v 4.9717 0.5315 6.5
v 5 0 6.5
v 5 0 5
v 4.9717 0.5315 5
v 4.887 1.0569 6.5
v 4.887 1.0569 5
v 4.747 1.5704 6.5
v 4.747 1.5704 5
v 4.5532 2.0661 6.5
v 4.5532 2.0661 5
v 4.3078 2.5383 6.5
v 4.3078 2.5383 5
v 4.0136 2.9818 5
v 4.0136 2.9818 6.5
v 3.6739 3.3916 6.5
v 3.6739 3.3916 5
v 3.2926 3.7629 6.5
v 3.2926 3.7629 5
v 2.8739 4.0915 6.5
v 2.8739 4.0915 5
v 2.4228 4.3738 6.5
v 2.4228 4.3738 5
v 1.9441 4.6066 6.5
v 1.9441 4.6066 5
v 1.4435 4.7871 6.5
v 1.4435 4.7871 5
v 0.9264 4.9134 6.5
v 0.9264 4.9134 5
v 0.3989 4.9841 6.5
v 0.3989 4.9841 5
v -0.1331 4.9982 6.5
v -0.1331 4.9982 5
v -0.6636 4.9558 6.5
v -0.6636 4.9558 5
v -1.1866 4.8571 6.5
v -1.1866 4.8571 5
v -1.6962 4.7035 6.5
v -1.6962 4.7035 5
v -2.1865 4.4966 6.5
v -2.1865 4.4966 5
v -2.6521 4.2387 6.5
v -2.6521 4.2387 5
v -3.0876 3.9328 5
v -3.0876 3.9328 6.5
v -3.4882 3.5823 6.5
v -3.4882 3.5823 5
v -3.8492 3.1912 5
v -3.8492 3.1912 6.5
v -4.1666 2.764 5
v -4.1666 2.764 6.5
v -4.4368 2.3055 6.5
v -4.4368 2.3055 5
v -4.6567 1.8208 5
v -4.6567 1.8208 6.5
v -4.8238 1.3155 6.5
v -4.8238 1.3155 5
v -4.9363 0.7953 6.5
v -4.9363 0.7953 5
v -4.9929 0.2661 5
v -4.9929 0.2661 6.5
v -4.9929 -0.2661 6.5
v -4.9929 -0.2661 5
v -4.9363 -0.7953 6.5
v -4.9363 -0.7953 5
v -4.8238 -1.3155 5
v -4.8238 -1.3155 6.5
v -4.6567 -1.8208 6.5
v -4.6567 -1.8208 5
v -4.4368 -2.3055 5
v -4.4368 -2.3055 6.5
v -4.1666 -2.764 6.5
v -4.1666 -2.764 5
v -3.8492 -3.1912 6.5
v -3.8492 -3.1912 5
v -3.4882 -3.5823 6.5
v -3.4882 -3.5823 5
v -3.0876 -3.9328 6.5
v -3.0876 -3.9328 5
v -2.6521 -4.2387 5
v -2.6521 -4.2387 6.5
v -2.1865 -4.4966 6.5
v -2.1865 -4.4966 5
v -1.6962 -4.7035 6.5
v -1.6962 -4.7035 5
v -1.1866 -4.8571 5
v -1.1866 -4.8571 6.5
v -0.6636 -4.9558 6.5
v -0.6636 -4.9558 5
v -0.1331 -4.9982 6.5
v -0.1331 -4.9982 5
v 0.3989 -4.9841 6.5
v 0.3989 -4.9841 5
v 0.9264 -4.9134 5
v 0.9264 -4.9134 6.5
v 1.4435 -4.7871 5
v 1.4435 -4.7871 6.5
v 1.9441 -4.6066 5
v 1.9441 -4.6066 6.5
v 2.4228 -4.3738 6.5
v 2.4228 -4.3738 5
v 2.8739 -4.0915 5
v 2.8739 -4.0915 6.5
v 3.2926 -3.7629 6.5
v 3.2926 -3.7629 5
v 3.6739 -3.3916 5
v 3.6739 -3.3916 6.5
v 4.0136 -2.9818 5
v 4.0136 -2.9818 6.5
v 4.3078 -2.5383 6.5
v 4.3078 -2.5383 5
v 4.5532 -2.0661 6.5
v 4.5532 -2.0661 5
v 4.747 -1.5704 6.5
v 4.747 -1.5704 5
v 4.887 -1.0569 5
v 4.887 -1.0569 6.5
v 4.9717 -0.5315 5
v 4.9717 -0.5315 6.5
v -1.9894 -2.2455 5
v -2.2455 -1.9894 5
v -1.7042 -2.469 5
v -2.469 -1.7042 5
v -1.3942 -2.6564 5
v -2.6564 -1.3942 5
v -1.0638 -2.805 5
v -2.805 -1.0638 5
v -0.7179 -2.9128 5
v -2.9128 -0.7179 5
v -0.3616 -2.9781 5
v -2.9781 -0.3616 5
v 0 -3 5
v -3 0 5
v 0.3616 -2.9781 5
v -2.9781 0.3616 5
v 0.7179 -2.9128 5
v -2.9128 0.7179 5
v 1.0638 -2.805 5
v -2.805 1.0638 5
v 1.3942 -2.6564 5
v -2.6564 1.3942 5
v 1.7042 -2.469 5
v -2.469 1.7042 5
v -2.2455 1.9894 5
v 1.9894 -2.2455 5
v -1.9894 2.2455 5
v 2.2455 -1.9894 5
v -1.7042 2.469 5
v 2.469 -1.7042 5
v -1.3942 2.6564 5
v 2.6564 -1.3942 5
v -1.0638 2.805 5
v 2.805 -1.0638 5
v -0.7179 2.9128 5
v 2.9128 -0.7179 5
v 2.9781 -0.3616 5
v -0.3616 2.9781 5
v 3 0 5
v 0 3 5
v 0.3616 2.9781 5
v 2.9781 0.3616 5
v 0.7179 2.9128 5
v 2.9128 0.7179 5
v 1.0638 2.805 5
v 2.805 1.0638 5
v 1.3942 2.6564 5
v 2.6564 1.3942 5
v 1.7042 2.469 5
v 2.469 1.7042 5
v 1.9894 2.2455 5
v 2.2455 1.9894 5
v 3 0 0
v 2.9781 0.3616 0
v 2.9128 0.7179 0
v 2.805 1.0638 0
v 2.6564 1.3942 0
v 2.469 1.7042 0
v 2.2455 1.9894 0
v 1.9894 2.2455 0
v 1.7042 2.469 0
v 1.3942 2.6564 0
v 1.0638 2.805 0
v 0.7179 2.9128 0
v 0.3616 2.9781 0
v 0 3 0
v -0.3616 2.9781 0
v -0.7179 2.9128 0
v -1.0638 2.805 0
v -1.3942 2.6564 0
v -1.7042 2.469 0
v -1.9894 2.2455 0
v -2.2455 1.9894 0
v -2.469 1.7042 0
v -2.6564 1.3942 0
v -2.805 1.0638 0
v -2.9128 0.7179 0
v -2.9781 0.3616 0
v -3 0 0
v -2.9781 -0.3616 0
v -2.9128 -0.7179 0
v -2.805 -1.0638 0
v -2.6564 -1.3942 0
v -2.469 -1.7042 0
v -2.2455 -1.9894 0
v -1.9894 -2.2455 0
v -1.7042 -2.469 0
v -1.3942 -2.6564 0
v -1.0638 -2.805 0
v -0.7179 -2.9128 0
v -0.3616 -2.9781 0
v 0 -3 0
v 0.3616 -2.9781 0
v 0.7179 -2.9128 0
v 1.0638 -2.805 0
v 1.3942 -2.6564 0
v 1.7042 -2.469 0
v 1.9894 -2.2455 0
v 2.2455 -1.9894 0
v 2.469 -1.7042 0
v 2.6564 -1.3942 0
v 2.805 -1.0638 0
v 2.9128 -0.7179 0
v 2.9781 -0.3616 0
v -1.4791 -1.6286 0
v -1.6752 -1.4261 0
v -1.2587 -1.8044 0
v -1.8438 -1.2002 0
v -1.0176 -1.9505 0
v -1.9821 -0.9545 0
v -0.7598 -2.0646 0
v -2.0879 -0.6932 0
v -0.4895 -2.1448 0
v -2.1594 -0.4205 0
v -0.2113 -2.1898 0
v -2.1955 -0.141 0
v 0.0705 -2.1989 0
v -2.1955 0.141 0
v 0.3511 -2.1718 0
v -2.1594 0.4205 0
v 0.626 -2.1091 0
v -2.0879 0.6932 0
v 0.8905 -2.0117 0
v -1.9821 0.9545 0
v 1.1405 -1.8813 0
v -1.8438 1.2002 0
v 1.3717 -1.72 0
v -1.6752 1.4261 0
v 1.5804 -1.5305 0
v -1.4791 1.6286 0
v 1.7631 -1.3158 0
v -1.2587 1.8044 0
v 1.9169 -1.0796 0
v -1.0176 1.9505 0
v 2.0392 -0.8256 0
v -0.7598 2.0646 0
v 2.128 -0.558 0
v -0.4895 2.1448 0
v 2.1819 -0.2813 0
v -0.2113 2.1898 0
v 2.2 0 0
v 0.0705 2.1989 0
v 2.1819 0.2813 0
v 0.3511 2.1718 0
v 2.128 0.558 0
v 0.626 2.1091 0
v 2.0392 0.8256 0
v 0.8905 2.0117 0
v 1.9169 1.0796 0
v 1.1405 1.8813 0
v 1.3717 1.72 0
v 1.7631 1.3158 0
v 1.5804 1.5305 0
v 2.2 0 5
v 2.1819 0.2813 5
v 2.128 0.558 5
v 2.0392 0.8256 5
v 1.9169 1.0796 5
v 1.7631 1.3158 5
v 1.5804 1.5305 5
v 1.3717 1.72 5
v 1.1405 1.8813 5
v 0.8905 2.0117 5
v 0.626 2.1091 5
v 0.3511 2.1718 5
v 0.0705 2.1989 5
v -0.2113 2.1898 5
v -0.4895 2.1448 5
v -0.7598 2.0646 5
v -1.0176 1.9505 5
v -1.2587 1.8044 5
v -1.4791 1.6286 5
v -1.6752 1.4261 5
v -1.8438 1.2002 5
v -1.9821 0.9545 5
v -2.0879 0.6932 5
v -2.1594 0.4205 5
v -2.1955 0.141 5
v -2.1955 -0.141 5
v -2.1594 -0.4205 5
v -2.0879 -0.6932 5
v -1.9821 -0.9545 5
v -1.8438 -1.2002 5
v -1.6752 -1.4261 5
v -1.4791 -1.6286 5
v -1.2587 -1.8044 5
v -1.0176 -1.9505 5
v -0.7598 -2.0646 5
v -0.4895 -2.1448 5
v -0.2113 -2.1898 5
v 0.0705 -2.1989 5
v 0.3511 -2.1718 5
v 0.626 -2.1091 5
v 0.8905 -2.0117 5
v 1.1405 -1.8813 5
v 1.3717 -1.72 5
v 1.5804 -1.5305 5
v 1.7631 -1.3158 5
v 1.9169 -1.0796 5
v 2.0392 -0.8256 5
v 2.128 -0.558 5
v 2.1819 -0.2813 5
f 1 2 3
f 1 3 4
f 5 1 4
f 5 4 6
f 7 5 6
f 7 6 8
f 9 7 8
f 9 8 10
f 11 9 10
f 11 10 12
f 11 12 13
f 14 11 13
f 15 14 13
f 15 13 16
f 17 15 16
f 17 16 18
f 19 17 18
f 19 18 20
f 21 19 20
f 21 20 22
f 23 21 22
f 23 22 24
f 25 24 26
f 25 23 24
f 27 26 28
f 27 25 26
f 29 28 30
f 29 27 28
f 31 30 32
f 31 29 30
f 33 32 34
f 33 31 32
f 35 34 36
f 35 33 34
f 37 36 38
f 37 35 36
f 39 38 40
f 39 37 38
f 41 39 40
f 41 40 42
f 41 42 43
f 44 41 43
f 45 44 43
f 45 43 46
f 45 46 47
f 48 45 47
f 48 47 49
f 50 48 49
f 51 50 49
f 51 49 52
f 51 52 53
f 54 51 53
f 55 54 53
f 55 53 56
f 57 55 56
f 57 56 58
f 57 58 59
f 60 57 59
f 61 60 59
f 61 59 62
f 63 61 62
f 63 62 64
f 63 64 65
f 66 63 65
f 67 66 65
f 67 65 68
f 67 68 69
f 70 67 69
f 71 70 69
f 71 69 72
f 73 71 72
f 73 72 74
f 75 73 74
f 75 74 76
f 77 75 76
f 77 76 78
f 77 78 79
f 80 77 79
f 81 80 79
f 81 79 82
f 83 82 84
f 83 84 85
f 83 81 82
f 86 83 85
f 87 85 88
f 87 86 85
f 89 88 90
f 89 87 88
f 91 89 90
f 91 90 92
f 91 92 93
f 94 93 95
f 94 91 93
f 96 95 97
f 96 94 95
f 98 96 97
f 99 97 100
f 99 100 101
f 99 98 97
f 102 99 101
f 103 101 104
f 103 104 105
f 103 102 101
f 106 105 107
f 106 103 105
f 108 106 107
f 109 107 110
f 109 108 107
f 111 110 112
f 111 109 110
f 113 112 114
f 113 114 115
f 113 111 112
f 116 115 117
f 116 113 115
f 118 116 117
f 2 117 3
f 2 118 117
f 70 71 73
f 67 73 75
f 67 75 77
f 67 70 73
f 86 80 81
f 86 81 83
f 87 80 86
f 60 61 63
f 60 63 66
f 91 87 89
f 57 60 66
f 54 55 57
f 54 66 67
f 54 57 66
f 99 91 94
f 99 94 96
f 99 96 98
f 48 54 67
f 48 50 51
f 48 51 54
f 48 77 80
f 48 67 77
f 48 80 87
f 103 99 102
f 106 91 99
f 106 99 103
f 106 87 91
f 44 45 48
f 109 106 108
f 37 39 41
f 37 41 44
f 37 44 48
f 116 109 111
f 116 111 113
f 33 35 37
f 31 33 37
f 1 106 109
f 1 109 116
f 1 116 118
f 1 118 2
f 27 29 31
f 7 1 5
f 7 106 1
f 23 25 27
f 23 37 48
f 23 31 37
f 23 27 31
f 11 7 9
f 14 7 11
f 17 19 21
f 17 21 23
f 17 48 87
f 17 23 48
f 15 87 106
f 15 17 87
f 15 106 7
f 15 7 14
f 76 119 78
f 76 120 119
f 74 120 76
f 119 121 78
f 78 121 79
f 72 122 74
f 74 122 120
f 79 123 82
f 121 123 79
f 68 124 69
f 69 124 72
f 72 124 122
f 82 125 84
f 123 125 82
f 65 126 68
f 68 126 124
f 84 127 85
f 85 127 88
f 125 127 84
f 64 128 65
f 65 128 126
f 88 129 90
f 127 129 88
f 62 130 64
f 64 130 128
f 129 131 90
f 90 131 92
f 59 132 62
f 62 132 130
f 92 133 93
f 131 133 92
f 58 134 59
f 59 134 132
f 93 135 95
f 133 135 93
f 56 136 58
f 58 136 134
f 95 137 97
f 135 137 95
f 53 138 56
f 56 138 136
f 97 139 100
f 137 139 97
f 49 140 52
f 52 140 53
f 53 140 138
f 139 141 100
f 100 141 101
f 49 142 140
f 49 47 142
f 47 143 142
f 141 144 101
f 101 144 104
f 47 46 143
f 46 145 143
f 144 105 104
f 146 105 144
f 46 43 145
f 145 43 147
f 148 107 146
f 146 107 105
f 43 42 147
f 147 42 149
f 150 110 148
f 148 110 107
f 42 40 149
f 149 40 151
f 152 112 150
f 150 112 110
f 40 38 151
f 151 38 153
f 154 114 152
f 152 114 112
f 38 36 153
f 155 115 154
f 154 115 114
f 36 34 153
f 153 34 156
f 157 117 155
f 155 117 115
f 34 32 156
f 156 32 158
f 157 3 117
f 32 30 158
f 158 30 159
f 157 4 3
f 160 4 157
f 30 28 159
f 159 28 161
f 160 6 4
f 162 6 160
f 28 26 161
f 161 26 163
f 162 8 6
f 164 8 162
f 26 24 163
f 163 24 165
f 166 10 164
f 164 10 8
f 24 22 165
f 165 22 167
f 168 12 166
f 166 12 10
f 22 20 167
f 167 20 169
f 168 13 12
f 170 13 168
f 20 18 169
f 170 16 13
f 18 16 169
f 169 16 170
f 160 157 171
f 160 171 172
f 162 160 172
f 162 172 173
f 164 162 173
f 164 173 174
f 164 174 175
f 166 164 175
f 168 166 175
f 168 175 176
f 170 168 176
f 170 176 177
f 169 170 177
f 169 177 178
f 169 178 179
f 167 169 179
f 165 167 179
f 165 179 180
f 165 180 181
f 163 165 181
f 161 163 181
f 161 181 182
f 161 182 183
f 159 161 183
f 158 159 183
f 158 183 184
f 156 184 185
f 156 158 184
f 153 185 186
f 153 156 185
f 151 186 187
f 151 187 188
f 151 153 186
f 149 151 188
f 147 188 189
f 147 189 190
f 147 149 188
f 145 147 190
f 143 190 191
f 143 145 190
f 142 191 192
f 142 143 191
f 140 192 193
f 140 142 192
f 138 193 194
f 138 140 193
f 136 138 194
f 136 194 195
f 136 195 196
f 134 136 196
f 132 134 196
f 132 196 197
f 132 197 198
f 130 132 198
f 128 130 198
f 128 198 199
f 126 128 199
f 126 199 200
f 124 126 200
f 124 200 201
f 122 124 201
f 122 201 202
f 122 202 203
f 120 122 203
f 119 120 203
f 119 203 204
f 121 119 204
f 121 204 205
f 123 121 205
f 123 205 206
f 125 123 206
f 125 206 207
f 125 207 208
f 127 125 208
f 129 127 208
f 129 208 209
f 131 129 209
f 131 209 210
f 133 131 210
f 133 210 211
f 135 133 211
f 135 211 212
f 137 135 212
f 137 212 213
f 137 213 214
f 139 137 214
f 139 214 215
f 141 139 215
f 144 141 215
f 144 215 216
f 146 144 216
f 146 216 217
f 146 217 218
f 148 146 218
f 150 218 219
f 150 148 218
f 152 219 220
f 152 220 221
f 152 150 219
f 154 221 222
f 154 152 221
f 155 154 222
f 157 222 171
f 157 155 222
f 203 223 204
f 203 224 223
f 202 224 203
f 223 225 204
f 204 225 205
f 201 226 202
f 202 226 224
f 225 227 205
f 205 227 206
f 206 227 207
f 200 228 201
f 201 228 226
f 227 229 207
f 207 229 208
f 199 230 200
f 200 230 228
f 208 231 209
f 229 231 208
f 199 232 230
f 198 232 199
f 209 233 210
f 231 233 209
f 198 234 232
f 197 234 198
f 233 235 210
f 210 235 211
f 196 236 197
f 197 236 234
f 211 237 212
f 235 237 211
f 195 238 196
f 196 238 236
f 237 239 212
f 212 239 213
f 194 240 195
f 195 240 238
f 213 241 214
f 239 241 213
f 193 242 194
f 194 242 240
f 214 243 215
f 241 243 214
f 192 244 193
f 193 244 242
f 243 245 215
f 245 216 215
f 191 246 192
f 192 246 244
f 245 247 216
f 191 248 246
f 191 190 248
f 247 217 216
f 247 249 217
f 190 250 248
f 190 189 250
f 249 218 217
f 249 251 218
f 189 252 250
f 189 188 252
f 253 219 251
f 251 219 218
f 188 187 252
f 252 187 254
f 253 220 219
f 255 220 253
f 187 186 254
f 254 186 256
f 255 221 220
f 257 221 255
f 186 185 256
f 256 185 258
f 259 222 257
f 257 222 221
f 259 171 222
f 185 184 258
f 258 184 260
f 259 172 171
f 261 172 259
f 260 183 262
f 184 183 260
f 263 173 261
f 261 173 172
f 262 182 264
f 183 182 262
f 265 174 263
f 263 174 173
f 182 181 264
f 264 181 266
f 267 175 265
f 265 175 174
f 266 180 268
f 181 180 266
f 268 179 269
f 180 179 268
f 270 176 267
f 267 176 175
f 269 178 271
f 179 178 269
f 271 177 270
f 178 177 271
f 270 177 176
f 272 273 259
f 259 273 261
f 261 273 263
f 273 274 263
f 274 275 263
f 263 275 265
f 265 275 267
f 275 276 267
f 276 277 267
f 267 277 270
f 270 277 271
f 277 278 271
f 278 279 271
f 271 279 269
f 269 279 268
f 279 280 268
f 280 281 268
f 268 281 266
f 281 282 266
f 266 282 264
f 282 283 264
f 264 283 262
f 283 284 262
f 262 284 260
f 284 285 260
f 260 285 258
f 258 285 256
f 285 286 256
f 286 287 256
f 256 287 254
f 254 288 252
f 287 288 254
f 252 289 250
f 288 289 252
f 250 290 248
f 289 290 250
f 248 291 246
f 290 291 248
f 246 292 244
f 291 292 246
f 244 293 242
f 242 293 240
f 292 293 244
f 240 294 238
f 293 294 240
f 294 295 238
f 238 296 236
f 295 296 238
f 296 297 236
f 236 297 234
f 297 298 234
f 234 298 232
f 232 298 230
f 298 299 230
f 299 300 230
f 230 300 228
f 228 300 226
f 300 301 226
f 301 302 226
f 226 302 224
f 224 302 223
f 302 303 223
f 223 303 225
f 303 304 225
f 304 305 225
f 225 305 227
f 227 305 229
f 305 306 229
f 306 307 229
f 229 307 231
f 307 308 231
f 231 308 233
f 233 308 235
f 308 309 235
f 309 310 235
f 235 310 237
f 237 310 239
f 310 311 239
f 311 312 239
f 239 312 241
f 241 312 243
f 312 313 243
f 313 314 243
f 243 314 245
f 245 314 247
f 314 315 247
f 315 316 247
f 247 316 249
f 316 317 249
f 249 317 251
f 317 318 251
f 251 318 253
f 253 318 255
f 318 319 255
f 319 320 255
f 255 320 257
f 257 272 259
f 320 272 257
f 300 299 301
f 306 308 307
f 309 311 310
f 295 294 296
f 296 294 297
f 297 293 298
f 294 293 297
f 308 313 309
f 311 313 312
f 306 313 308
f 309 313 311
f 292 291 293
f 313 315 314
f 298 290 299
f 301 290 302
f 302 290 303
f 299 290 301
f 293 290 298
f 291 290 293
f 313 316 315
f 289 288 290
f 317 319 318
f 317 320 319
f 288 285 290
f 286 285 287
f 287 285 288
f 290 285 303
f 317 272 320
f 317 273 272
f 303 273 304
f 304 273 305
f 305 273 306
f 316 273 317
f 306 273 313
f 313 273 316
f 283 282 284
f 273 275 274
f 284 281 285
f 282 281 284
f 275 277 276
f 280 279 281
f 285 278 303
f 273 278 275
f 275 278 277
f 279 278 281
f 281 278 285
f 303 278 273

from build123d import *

# Parameters (mm, degrees)
CYLINDER001_R     = 5
CYLINDER001_DEPTH = 1.5
CYLINDER002_R     = 2.2
CYLINDER002_DEPTH = 5
CYLINDER_R        = 3
CYLINDER_DEPTH    = 5


with BuildPart() as cylinder001:
    # Cylinder001 → Cylinder001 (new body)
    with BuildSketch(Plane.XY.offset(5)):
        Circle(CYLINDER001_R)
    extrude(amount=CYLINDER001_DEPTH)


with BuildPart() as cylinder002:
    # Cylinder002 → Cylinder002 (new body)
    with BuildSketch(Plane.XY):
        Circle(CYLINDER002_R)
    extrude(amount=CYLINDER002_DEPTH)


with BuildPart() as fusion001:
    # Cylinder → Cylinder (new body)
    with BuildSketch(Plane.XY):
        Circle(CYLINDER_R)
    extrude(amount=CYLINDER_DEPTH)

    # Cut: cut Cylinder002
    add(cylinder002.part, mode=Mode.SUBTRACT)

    # Fusion: union Cylinder001
    add(cylinder001.part)


solid = fusion001.part
